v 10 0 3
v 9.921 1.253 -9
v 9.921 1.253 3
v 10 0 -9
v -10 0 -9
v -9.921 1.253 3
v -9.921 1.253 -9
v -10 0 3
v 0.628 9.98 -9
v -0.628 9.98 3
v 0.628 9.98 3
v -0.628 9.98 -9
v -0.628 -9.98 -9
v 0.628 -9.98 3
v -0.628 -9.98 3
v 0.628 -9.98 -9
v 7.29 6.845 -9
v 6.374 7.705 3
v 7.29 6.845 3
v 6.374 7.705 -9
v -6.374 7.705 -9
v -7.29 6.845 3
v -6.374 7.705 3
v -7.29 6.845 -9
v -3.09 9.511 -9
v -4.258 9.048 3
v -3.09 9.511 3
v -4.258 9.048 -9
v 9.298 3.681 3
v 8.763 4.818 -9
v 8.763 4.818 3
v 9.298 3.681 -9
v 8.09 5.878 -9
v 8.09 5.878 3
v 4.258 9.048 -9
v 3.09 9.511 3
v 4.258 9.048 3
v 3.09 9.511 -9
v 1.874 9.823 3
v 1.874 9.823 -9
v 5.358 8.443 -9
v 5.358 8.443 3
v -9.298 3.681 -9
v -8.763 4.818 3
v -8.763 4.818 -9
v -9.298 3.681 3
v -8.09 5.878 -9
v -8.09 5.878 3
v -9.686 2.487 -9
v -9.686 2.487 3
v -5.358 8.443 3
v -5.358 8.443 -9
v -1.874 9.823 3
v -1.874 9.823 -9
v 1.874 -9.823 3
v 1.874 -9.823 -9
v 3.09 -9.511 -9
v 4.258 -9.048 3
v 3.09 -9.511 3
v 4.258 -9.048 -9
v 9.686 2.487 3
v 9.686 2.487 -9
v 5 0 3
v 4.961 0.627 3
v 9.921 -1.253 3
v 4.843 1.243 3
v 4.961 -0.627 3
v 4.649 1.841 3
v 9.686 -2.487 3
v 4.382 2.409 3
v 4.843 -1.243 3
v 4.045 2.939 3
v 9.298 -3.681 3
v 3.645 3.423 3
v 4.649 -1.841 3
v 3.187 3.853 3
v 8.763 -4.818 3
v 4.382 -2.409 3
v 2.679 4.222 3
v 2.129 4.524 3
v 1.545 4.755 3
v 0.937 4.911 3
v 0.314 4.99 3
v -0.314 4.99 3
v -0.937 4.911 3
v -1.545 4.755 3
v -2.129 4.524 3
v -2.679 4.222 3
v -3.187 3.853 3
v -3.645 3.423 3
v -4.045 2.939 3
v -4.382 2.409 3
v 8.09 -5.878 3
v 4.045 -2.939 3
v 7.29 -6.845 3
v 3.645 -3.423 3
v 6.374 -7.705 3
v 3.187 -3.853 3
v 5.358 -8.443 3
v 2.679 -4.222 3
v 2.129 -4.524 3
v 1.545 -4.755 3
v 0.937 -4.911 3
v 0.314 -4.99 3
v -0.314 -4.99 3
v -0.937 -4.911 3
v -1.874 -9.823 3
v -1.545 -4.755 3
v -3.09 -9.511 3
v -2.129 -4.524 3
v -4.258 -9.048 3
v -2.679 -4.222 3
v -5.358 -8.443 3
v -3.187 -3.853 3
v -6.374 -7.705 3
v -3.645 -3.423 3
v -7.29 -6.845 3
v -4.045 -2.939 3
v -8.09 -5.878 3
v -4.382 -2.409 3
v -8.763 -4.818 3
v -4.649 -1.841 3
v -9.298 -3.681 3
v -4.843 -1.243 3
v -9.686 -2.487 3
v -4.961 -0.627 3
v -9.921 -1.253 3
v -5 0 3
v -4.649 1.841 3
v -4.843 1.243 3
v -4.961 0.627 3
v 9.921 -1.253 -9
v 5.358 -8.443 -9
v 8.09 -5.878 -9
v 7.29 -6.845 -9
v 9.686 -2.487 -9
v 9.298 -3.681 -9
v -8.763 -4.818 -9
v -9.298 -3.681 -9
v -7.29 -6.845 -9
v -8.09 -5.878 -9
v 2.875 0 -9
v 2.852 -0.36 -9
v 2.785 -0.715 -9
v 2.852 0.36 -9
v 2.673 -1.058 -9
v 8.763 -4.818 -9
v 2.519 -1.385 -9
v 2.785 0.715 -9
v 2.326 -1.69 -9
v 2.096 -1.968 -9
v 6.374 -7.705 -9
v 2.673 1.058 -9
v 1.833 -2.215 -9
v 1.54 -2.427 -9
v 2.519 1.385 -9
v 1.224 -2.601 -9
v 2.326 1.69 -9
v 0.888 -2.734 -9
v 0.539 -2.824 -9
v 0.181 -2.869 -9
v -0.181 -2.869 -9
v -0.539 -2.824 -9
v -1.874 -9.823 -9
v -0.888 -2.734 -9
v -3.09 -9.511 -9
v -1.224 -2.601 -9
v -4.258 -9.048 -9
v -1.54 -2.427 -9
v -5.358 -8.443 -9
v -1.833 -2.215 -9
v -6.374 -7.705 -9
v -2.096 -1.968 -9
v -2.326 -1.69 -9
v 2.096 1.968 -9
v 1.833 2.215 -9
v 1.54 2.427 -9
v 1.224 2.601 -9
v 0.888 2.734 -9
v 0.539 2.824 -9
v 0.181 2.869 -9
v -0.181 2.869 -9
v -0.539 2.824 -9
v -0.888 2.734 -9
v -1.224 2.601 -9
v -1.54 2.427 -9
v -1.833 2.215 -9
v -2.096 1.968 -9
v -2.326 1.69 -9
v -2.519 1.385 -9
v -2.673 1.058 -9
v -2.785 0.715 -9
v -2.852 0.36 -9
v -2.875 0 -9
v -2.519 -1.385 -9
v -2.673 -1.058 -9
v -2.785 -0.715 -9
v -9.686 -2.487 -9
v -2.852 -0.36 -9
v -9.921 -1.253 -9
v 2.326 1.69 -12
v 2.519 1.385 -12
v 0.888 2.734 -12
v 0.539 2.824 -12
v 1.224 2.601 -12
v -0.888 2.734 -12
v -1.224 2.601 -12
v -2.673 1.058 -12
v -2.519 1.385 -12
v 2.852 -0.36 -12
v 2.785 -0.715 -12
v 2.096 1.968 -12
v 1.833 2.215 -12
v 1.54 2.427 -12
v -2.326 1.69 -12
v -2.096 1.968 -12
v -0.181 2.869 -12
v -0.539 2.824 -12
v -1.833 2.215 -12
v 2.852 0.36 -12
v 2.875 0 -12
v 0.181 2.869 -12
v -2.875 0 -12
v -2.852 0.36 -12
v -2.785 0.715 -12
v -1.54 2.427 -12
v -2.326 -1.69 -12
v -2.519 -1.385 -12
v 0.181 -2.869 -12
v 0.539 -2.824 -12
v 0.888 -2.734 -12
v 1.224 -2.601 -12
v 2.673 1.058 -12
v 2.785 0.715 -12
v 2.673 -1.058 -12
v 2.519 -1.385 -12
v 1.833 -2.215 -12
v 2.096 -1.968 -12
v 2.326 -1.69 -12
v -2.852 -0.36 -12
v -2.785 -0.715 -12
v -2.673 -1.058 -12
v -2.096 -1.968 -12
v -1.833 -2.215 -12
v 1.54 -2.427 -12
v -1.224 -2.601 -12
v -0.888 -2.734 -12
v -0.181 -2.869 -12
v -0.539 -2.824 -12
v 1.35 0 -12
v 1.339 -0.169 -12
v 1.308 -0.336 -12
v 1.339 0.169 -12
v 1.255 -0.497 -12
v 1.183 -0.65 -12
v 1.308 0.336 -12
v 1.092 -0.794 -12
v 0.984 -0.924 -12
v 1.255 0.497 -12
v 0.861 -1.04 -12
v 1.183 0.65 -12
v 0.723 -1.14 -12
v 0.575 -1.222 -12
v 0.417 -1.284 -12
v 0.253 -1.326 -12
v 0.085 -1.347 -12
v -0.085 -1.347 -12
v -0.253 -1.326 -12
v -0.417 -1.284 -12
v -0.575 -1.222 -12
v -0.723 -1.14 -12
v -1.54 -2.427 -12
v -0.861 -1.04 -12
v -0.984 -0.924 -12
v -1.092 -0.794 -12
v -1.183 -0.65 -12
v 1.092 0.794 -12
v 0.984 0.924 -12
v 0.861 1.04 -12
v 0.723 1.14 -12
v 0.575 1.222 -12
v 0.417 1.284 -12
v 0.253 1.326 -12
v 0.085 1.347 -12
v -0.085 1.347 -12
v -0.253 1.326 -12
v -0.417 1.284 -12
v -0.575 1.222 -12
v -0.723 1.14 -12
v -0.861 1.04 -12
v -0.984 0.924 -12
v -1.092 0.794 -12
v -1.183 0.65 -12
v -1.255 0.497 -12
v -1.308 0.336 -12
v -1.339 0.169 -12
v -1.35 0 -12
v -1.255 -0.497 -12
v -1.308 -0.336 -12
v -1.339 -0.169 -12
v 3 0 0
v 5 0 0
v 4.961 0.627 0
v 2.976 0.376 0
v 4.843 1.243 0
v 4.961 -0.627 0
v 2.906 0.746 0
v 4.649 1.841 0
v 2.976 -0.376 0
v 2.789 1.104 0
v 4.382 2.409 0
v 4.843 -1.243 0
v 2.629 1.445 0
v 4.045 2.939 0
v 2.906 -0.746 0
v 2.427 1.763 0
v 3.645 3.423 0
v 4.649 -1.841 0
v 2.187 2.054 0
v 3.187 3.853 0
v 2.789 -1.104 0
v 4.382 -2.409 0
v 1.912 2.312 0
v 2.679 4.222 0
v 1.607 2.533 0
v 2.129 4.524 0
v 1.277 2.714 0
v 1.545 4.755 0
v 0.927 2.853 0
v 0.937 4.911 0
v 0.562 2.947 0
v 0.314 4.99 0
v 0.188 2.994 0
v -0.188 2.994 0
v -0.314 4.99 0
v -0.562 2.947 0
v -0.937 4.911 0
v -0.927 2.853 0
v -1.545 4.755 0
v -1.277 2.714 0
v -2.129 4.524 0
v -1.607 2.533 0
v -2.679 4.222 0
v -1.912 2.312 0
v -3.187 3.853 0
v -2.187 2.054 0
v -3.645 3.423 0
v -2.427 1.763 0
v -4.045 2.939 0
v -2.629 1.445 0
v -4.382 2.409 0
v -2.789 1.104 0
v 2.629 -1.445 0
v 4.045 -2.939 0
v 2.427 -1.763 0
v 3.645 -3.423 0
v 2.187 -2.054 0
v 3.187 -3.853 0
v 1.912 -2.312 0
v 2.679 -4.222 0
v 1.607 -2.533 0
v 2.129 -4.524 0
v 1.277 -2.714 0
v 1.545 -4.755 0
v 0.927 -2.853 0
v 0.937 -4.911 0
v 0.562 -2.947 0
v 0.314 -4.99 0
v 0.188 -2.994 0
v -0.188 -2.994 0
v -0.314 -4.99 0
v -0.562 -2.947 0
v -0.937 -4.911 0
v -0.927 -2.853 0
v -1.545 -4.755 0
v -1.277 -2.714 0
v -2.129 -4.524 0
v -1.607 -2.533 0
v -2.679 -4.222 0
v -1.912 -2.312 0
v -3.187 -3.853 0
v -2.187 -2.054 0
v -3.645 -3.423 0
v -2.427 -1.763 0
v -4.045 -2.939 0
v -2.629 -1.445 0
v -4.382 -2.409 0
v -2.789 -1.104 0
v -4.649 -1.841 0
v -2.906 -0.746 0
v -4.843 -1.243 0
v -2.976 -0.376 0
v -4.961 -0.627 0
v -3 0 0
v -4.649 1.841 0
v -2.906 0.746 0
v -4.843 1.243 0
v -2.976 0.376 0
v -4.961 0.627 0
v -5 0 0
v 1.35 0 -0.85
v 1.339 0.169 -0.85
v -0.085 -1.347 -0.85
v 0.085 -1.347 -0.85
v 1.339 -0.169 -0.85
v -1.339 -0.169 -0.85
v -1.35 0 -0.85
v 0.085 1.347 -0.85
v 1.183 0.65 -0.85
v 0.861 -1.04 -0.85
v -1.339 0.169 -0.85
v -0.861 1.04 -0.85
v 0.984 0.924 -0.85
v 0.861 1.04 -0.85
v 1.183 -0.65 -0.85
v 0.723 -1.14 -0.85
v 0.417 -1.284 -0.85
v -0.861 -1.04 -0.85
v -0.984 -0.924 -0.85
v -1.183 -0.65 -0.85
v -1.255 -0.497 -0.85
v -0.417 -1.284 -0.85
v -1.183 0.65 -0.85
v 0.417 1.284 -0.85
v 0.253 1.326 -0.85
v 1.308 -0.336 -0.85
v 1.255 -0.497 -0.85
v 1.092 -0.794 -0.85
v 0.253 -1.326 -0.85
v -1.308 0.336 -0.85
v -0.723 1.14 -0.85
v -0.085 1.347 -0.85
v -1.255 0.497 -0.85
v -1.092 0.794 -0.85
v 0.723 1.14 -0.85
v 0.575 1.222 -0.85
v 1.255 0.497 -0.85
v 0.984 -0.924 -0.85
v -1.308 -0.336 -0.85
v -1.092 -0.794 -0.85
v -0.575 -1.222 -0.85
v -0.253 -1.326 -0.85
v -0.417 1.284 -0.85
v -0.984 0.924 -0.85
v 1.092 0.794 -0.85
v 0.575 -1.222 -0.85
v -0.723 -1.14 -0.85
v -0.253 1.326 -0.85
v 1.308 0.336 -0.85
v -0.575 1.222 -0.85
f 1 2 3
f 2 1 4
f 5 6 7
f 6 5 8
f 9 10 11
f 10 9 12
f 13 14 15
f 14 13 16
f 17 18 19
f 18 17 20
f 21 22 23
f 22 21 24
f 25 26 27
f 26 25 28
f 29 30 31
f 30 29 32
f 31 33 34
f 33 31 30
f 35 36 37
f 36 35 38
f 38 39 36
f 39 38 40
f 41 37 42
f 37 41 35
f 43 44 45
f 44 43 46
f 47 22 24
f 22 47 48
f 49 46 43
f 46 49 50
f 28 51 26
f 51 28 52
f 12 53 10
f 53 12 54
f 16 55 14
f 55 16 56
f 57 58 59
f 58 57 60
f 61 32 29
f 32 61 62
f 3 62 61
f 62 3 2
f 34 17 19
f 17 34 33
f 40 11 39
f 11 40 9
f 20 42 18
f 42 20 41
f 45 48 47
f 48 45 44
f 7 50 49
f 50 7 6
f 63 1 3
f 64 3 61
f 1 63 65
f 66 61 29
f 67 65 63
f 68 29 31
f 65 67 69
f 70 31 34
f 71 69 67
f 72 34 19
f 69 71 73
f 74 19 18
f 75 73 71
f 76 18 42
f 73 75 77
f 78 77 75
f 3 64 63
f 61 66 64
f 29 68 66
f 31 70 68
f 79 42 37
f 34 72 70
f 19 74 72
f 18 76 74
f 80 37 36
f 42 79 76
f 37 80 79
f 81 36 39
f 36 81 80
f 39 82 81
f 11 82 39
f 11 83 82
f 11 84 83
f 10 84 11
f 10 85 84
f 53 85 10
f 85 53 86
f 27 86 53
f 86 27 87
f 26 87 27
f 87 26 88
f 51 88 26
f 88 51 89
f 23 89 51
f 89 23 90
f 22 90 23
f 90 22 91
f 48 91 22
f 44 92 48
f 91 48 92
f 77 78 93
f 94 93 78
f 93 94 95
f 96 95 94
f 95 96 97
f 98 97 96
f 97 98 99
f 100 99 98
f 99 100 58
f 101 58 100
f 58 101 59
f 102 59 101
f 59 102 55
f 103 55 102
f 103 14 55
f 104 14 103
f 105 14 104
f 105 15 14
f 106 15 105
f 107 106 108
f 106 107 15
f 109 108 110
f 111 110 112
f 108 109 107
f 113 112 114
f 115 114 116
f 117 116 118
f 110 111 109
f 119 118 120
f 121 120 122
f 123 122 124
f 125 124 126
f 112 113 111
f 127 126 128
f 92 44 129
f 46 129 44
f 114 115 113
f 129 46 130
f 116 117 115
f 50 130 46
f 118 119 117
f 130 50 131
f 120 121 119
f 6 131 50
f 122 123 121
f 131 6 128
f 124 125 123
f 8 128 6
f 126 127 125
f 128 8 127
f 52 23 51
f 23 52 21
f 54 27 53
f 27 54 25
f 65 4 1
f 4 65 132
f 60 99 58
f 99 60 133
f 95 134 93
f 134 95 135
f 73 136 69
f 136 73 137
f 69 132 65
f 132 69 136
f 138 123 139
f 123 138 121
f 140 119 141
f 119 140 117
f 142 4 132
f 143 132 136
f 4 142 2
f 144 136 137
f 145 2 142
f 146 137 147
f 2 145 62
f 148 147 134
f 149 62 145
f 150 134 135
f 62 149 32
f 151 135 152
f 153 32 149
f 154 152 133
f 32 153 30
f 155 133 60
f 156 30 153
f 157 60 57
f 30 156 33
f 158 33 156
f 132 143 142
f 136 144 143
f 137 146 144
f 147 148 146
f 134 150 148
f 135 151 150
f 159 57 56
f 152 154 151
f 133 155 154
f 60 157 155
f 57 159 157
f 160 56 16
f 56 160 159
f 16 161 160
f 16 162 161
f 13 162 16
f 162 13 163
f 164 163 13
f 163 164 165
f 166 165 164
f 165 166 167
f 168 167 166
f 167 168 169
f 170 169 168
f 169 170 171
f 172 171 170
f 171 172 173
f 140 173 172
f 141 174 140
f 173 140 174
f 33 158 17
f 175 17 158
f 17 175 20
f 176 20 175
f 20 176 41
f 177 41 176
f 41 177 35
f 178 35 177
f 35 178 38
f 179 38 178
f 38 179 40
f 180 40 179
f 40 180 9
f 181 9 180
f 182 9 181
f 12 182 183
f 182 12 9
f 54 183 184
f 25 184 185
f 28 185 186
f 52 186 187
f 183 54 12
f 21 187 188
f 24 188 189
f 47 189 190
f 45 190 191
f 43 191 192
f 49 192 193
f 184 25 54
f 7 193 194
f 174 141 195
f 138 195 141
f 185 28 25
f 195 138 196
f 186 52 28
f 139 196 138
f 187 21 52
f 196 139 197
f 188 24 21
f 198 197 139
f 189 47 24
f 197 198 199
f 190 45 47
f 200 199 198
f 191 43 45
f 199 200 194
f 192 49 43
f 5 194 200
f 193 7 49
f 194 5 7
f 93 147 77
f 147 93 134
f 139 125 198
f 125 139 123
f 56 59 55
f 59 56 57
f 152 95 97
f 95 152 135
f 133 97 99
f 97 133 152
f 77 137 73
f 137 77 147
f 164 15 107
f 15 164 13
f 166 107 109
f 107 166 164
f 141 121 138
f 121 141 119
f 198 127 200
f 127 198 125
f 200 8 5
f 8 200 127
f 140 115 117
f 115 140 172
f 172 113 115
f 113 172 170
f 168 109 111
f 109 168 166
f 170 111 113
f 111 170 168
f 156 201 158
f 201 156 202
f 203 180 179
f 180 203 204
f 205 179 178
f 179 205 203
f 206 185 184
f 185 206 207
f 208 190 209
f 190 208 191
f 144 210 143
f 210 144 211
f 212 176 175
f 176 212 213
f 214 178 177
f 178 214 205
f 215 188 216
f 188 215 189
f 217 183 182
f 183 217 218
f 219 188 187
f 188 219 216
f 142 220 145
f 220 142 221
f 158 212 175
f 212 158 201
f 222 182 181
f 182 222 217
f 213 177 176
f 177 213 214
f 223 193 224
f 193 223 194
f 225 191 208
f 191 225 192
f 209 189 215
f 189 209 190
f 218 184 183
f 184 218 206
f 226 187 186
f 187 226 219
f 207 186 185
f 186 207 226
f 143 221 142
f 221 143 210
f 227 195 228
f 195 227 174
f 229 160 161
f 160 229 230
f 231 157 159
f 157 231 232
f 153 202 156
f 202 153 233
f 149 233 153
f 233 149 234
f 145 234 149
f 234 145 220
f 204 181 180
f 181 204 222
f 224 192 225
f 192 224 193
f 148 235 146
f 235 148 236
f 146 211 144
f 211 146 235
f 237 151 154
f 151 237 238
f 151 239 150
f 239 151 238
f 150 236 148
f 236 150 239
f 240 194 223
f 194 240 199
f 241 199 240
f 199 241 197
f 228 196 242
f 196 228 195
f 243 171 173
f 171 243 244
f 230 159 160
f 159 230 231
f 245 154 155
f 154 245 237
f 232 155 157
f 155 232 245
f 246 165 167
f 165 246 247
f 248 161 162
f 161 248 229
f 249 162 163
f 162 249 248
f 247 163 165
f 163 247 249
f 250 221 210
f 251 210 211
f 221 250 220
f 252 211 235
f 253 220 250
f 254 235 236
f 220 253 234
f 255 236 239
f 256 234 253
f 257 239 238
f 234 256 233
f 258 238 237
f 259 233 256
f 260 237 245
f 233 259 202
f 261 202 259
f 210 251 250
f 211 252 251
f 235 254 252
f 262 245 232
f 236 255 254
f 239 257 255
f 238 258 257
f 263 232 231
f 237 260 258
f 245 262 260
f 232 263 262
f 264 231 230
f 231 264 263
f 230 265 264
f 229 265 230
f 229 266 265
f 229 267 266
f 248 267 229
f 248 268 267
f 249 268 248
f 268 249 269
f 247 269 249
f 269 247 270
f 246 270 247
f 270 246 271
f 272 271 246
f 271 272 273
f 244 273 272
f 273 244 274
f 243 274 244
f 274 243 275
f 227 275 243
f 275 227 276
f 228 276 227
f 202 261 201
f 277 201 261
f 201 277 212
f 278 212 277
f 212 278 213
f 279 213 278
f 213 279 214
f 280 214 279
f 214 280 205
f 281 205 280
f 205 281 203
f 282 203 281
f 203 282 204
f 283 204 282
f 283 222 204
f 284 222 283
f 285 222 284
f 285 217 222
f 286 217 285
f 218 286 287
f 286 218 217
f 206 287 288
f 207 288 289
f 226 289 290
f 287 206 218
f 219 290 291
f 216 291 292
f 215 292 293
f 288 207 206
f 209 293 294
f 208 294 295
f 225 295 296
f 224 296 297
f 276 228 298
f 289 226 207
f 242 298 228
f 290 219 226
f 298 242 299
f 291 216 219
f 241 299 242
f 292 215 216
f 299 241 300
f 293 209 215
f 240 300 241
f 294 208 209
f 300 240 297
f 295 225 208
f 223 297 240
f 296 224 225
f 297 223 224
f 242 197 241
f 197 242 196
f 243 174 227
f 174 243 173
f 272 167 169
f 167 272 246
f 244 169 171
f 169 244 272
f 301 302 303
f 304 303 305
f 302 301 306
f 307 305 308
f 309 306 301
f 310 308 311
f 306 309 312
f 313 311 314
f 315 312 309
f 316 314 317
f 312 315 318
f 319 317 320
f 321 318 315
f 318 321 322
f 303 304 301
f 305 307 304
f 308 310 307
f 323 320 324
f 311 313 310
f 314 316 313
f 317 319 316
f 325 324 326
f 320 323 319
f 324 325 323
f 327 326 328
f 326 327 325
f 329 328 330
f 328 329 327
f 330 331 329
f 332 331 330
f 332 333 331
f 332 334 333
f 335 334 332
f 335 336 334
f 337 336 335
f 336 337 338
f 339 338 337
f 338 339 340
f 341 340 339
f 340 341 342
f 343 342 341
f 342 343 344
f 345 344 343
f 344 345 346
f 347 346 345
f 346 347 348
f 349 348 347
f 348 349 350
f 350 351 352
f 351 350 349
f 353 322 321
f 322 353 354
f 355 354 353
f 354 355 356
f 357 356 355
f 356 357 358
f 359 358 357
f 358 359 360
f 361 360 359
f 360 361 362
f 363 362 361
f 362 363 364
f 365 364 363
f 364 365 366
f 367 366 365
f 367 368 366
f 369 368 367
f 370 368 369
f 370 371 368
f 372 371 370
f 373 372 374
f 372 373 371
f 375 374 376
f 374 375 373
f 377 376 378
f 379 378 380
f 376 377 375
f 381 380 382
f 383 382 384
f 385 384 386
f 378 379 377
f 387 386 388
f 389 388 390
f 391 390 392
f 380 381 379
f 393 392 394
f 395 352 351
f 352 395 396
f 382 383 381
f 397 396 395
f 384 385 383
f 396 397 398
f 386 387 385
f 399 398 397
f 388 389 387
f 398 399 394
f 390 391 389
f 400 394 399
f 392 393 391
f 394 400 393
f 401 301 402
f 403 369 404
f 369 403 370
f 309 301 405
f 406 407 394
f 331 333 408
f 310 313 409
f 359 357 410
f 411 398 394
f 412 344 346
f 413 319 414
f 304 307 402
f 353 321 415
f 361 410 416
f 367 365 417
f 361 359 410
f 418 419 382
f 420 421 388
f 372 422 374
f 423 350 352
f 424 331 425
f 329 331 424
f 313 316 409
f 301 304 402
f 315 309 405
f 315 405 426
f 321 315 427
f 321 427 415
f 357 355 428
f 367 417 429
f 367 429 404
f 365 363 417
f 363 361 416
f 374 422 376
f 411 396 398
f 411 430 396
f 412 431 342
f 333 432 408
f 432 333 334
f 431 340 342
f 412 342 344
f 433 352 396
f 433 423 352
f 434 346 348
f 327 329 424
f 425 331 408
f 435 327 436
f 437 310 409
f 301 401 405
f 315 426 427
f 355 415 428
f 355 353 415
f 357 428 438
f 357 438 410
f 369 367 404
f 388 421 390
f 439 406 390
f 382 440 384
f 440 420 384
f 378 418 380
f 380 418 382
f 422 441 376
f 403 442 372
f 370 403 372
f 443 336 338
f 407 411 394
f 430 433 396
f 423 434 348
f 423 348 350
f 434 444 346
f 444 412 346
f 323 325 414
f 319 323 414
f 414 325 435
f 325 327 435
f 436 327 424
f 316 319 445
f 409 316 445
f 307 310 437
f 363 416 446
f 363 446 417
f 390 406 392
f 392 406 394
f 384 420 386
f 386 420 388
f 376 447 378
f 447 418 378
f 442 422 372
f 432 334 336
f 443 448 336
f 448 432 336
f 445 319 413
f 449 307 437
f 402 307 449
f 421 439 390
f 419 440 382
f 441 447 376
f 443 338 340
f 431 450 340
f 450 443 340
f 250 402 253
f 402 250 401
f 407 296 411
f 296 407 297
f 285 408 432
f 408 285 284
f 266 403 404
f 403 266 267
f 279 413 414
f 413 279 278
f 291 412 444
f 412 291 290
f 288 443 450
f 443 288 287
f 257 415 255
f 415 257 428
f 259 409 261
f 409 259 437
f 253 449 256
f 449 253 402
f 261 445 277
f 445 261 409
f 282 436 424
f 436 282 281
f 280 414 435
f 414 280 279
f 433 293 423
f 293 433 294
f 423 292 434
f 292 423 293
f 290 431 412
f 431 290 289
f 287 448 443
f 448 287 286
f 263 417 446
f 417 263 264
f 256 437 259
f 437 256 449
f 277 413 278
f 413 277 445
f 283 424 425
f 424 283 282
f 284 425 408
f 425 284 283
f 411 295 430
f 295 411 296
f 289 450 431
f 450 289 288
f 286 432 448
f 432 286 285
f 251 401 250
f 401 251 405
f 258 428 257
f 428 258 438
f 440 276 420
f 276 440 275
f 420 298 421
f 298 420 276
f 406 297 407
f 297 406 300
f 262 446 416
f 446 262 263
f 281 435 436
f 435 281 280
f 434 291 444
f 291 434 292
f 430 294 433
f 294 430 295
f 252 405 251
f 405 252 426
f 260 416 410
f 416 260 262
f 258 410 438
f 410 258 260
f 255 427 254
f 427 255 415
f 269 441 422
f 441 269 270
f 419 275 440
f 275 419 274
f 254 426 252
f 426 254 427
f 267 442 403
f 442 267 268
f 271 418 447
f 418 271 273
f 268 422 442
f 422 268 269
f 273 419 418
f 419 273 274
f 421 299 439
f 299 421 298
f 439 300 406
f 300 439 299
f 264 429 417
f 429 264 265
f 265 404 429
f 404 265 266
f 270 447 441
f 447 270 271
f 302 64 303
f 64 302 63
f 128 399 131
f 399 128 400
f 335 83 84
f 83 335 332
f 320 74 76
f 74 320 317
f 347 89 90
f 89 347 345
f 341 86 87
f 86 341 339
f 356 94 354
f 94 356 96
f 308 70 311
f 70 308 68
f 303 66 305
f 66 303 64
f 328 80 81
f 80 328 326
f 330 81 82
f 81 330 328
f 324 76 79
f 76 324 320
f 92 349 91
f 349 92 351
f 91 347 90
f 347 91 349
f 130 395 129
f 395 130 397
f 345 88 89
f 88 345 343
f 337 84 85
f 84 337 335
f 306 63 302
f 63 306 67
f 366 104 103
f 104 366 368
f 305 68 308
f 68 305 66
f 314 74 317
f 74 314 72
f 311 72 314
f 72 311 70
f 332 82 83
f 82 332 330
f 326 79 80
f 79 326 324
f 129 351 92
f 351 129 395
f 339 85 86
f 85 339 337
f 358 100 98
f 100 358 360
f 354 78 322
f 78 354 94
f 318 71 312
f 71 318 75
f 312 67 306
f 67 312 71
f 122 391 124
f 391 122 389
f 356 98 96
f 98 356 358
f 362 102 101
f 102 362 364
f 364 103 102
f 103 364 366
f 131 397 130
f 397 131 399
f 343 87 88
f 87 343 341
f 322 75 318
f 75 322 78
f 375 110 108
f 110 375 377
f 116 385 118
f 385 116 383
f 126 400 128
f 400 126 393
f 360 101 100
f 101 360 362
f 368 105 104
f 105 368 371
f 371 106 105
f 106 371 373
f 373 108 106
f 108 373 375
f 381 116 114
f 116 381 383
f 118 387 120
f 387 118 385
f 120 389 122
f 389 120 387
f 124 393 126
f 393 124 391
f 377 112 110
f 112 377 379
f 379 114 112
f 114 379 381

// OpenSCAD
$fn = 50;

difference() {
	union() {
		translate(v = [0, 0, -9.0]) {
			cylinder(h = 12, r = 10.0);
		}
		#translate(v = [0, 0, -12.0]) {
			cylinder(h = 12, r = 2.875);
		}
	}
	union() {
		translate(v = [0, 0, 0]) {
			rotate(a = [0, 0, 0]) {
				difference() {
					union() {
						translate(v = [0, 0, -12.0]) {
							cylinder(h = 12, r = 1.0);
						}
						translate(v = [0, 0, -0.85]) {
							cylinder(h = 0.85, r1 = 1.35, r2 = 3.0);
						}
						translate(v = [0, 0, -12.0]) {
							cylinder(h = 12, r = 1.35);
						}
						translate(v = [0, 0, -12.0]) {
							cylinder(h = 12, r = 1.0);
						}
					}
					union();
				}
			}
		}
		#cylinder(h = 3, r = 5.0);
	}
}
